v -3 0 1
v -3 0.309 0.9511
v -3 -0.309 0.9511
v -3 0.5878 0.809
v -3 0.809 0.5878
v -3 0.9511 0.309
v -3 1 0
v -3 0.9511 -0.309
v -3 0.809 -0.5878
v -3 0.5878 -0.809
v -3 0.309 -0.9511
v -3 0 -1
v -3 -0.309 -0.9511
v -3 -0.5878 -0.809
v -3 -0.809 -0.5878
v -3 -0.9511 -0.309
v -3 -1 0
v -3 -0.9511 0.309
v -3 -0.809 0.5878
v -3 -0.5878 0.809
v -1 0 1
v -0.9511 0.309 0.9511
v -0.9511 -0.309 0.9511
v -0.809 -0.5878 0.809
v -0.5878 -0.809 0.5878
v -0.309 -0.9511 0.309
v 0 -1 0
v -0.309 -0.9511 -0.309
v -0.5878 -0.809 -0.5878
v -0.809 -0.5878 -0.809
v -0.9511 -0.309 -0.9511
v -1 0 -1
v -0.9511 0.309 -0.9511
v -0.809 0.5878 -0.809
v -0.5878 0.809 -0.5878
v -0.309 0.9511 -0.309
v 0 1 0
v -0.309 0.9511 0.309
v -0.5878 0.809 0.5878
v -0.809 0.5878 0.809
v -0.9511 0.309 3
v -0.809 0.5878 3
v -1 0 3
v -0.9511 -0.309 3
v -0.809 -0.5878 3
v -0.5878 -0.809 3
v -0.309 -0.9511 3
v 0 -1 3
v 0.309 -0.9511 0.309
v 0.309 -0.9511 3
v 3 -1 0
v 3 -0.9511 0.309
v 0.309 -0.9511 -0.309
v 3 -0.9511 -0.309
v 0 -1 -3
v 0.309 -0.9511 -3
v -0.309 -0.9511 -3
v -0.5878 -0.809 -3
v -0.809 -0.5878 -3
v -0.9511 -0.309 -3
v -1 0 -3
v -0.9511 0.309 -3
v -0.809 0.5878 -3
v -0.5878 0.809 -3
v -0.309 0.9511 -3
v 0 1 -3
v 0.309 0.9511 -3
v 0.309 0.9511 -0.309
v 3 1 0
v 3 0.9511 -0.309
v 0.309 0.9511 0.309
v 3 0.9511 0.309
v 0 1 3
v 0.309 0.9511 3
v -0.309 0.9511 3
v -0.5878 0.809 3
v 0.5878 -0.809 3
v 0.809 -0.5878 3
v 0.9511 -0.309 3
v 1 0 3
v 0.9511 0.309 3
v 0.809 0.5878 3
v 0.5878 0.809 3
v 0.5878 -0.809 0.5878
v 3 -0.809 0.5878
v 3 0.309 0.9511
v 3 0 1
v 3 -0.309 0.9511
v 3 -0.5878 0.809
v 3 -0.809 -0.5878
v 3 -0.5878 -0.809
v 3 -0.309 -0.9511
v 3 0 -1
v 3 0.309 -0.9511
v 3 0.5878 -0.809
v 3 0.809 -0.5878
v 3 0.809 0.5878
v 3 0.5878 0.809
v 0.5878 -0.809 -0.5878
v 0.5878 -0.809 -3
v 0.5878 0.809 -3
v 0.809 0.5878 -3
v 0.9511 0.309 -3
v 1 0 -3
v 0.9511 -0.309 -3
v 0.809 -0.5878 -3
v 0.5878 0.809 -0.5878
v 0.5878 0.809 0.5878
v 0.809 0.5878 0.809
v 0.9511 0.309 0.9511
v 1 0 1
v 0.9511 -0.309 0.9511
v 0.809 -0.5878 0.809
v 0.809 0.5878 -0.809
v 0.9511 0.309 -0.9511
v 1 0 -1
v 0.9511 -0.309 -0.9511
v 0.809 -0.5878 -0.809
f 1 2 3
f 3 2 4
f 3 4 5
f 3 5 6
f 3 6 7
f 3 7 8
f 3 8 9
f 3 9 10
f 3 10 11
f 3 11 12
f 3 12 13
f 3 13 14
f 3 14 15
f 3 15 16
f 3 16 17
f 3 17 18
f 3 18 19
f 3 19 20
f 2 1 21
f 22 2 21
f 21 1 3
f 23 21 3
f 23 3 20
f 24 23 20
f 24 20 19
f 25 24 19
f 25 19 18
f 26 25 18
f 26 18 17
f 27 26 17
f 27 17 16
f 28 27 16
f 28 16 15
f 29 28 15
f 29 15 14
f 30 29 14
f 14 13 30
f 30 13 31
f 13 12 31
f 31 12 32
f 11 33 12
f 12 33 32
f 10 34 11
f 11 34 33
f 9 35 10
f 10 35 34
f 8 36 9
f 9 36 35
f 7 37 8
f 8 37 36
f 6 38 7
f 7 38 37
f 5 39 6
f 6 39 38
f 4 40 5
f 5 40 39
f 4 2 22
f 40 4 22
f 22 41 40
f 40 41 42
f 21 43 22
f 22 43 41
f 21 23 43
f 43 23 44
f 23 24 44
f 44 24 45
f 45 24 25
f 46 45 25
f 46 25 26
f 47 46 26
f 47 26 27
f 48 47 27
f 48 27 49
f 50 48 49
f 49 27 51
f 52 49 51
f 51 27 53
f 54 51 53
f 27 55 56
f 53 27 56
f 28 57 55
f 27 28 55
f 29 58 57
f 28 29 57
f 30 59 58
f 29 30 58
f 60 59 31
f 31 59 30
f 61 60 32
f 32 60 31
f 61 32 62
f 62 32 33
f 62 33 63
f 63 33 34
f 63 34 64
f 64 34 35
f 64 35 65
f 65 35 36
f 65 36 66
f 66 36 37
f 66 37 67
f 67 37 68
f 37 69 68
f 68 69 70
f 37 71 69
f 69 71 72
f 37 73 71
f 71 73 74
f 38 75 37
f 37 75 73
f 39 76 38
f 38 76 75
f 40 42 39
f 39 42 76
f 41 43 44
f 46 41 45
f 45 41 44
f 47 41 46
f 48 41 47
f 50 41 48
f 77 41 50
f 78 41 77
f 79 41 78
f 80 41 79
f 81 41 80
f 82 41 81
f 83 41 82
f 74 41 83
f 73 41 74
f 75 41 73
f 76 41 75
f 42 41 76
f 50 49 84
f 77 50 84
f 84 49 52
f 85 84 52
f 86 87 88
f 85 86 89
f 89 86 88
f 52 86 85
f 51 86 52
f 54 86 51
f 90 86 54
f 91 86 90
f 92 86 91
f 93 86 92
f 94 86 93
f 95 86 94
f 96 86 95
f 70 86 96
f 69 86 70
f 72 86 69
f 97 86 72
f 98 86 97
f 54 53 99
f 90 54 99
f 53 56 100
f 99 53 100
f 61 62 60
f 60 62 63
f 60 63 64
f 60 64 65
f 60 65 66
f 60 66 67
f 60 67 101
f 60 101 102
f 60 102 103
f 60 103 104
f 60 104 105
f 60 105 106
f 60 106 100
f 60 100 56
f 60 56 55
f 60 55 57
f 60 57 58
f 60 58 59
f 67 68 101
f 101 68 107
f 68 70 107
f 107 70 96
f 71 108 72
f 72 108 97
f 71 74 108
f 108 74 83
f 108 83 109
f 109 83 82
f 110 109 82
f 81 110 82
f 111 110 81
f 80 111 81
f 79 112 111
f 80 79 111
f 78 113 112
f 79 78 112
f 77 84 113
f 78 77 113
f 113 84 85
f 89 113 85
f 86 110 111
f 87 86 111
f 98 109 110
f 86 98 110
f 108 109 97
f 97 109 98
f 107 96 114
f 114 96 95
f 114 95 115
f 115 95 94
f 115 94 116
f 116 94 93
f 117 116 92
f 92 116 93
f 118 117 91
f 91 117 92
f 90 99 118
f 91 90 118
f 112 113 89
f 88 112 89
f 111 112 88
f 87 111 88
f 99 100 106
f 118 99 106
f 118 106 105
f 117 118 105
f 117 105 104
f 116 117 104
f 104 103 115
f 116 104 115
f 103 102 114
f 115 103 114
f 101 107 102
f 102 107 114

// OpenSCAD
axe_radius = 1;
ball_radius = 1.25;
cardan_radius = 3;

union()
{
  cylinder(h=2*cardan_radius, r=axe_radius, center=true, $fn=20);
  rotate([0,90,0]) cylinder(h=2*cardan_radius, r=axe_radius, center=true, $fn=20);
}
